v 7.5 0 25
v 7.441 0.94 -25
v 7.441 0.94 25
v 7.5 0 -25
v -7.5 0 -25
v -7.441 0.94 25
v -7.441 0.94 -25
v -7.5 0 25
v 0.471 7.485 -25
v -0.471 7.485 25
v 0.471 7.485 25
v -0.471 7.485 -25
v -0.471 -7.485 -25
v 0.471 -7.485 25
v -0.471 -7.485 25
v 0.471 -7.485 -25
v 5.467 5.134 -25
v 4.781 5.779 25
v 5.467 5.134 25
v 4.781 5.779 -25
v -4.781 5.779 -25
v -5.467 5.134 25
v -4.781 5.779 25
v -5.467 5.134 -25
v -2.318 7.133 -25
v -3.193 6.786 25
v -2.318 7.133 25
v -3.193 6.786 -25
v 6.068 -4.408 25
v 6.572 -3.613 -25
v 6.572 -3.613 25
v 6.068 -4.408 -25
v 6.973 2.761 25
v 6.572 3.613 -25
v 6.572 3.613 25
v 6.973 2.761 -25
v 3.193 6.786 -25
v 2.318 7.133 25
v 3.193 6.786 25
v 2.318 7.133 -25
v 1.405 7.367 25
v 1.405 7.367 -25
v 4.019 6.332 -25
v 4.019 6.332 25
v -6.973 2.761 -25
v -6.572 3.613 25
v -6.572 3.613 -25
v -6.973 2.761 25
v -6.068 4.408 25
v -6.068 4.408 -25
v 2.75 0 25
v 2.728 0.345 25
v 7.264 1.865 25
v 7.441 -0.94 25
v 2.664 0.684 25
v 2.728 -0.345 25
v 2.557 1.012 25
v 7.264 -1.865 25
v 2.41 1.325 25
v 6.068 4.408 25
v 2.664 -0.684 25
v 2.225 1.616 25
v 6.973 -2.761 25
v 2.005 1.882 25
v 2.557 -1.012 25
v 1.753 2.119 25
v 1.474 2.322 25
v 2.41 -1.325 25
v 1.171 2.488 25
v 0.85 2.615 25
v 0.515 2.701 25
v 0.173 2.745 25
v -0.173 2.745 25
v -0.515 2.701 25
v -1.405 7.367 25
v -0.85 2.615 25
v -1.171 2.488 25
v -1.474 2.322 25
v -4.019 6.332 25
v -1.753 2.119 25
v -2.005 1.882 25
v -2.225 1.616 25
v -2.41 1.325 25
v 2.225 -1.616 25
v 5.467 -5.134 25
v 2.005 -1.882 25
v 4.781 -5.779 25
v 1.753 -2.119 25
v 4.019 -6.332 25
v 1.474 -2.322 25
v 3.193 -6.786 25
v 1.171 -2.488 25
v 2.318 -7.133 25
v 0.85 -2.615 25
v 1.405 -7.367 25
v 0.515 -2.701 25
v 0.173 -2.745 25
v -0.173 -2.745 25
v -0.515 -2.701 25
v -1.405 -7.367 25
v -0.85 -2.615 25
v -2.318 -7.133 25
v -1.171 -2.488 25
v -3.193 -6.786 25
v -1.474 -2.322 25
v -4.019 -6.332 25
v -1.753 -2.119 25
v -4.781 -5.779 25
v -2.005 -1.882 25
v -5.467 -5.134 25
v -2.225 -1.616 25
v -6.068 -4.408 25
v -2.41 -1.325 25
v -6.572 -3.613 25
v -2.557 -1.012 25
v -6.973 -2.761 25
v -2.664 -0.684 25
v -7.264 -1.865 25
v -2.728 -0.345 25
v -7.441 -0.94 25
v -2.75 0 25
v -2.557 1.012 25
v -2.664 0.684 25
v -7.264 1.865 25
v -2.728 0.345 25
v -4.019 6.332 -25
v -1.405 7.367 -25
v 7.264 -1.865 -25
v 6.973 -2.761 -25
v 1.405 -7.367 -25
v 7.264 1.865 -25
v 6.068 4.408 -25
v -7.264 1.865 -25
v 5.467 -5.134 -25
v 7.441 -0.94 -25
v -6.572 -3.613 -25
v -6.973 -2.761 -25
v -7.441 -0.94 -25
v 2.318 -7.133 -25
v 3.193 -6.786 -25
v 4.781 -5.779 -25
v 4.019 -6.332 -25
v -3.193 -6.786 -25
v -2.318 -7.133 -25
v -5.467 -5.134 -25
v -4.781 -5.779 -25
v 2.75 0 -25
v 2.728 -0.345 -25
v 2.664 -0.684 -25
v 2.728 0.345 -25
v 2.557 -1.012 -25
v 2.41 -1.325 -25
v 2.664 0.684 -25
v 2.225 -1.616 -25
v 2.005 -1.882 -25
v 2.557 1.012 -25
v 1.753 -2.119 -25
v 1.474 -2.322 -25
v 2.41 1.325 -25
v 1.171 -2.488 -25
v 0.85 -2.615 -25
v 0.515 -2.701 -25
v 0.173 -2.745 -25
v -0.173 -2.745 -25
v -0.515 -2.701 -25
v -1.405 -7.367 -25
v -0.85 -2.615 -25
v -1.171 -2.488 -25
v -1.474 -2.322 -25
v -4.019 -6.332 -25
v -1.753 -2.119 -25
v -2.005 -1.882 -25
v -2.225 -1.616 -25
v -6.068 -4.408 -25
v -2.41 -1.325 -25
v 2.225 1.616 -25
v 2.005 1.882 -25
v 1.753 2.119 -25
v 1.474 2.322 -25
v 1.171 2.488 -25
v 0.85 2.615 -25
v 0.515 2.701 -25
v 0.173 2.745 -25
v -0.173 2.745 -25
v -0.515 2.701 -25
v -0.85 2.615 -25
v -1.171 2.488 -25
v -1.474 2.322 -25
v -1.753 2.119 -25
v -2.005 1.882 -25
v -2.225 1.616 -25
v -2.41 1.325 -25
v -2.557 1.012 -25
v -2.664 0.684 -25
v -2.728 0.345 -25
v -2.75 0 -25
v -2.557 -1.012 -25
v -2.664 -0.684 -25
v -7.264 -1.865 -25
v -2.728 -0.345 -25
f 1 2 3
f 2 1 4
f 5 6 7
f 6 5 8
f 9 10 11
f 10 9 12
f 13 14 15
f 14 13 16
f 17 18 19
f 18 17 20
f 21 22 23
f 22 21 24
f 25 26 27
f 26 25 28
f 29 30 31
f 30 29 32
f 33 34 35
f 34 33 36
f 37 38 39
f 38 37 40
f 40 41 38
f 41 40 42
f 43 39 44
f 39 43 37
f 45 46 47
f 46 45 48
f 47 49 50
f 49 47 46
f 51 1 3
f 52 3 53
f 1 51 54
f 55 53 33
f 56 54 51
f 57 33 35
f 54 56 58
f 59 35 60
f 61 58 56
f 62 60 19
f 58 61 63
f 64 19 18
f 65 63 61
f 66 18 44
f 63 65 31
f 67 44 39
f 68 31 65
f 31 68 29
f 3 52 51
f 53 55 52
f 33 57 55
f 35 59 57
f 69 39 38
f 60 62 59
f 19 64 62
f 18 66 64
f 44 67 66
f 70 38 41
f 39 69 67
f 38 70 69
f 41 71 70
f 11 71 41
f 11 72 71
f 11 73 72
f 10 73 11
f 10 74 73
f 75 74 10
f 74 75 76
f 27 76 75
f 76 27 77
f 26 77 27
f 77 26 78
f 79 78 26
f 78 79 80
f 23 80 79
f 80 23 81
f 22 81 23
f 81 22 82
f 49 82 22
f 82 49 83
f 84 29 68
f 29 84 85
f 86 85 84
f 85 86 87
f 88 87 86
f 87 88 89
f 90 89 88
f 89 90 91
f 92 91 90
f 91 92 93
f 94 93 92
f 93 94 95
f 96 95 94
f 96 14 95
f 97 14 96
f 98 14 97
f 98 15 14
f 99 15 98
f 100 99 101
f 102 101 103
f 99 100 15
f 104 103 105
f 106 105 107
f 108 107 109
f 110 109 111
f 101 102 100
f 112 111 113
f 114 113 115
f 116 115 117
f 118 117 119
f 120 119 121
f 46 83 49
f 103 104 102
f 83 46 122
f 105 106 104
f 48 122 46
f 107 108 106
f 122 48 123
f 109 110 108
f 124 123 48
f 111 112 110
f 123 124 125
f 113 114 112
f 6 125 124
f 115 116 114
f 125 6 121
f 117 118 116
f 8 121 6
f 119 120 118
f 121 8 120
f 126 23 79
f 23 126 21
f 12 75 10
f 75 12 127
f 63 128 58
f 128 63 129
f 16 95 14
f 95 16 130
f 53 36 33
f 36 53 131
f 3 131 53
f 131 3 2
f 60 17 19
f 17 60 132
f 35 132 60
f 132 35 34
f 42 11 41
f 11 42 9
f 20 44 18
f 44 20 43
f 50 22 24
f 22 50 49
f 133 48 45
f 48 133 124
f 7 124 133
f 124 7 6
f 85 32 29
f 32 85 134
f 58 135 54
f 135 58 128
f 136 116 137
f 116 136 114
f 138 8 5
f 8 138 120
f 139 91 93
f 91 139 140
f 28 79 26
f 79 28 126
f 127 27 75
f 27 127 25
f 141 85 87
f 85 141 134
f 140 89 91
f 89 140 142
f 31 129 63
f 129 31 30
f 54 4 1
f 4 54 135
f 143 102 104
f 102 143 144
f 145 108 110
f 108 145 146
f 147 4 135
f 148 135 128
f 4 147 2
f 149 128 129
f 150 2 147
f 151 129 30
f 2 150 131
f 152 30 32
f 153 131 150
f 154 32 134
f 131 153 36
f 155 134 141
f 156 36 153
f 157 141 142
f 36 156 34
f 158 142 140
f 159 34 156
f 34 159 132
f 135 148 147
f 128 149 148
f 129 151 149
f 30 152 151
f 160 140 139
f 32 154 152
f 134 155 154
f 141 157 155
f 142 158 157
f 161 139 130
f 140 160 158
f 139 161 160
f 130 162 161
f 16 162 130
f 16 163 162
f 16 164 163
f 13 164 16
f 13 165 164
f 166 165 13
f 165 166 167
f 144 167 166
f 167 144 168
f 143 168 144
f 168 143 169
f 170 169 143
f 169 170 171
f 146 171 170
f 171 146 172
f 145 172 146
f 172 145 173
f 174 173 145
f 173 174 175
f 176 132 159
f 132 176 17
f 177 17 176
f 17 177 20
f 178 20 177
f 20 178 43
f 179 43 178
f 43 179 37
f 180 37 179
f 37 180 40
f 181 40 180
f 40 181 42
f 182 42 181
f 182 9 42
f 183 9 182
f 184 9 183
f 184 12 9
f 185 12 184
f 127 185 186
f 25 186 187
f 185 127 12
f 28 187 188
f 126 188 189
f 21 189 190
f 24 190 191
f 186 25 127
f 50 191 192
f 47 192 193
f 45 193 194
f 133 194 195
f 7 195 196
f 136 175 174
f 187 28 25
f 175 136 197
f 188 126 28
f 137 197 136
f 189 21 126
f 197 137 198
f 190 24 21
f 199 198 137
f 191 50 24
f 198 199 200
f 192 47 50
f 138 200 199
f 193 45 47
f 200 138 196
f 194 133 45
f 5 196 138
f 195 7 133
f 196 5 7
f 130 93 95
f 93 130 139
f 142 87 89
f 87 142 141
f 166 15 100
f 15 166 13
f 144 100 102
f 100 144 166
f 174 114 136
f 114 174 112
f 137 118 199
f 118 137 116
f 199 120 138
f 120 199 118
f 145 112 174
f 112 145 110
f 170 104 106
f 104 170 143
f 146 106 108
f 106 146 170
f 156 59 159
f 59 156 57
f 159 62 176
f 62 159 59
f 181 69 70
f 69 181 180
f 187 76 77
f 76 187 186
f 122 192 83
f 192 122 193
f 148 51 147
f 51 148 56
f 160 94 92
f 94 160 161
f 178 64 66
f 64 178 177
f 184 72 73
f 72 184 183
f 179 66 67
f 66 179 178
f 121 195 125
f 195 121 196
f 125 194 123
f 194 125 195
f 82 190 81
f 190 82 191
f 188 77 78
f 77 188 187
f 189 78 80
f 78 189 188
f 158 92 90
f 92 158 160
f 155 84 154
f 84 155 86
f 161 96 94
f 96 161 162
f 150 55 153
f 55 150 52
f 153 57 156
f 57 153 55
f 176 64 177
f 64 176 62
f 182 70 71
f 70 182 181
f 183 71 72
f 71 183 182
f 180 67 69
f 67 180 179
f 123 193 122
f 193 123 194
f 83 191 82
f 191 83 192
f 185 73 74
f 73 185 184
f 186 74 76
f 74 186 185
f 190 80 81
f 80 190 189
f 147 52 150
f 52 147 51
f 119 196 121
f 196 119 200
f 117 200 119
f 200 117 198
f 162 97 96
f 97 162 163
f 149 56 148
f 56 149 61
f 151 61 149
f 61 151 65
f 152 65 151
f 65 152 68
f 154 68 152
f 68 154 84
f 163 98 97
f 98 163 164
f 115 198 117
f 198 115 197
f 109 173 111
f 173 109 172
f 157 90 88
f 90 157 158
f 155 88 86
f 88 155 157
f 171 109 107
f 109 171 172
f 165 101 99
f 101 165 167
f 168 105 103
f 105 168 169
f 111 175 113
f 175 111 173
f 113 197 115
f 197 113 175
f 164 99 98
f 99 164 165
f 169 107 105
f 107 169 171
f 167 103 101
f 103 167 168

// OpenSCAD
$fn = 50;


difference() {
	union() {
		translate(v = [0, 0, -25.0000000000]) {
			cylinder(h = 50, r = 7.5000000000);
		}
	}
	union() {
		translate(v = [0, 0, -100.0000000000]) {
			cylinder(h = 200, r = 2.7500000000);
		}
	}
}
